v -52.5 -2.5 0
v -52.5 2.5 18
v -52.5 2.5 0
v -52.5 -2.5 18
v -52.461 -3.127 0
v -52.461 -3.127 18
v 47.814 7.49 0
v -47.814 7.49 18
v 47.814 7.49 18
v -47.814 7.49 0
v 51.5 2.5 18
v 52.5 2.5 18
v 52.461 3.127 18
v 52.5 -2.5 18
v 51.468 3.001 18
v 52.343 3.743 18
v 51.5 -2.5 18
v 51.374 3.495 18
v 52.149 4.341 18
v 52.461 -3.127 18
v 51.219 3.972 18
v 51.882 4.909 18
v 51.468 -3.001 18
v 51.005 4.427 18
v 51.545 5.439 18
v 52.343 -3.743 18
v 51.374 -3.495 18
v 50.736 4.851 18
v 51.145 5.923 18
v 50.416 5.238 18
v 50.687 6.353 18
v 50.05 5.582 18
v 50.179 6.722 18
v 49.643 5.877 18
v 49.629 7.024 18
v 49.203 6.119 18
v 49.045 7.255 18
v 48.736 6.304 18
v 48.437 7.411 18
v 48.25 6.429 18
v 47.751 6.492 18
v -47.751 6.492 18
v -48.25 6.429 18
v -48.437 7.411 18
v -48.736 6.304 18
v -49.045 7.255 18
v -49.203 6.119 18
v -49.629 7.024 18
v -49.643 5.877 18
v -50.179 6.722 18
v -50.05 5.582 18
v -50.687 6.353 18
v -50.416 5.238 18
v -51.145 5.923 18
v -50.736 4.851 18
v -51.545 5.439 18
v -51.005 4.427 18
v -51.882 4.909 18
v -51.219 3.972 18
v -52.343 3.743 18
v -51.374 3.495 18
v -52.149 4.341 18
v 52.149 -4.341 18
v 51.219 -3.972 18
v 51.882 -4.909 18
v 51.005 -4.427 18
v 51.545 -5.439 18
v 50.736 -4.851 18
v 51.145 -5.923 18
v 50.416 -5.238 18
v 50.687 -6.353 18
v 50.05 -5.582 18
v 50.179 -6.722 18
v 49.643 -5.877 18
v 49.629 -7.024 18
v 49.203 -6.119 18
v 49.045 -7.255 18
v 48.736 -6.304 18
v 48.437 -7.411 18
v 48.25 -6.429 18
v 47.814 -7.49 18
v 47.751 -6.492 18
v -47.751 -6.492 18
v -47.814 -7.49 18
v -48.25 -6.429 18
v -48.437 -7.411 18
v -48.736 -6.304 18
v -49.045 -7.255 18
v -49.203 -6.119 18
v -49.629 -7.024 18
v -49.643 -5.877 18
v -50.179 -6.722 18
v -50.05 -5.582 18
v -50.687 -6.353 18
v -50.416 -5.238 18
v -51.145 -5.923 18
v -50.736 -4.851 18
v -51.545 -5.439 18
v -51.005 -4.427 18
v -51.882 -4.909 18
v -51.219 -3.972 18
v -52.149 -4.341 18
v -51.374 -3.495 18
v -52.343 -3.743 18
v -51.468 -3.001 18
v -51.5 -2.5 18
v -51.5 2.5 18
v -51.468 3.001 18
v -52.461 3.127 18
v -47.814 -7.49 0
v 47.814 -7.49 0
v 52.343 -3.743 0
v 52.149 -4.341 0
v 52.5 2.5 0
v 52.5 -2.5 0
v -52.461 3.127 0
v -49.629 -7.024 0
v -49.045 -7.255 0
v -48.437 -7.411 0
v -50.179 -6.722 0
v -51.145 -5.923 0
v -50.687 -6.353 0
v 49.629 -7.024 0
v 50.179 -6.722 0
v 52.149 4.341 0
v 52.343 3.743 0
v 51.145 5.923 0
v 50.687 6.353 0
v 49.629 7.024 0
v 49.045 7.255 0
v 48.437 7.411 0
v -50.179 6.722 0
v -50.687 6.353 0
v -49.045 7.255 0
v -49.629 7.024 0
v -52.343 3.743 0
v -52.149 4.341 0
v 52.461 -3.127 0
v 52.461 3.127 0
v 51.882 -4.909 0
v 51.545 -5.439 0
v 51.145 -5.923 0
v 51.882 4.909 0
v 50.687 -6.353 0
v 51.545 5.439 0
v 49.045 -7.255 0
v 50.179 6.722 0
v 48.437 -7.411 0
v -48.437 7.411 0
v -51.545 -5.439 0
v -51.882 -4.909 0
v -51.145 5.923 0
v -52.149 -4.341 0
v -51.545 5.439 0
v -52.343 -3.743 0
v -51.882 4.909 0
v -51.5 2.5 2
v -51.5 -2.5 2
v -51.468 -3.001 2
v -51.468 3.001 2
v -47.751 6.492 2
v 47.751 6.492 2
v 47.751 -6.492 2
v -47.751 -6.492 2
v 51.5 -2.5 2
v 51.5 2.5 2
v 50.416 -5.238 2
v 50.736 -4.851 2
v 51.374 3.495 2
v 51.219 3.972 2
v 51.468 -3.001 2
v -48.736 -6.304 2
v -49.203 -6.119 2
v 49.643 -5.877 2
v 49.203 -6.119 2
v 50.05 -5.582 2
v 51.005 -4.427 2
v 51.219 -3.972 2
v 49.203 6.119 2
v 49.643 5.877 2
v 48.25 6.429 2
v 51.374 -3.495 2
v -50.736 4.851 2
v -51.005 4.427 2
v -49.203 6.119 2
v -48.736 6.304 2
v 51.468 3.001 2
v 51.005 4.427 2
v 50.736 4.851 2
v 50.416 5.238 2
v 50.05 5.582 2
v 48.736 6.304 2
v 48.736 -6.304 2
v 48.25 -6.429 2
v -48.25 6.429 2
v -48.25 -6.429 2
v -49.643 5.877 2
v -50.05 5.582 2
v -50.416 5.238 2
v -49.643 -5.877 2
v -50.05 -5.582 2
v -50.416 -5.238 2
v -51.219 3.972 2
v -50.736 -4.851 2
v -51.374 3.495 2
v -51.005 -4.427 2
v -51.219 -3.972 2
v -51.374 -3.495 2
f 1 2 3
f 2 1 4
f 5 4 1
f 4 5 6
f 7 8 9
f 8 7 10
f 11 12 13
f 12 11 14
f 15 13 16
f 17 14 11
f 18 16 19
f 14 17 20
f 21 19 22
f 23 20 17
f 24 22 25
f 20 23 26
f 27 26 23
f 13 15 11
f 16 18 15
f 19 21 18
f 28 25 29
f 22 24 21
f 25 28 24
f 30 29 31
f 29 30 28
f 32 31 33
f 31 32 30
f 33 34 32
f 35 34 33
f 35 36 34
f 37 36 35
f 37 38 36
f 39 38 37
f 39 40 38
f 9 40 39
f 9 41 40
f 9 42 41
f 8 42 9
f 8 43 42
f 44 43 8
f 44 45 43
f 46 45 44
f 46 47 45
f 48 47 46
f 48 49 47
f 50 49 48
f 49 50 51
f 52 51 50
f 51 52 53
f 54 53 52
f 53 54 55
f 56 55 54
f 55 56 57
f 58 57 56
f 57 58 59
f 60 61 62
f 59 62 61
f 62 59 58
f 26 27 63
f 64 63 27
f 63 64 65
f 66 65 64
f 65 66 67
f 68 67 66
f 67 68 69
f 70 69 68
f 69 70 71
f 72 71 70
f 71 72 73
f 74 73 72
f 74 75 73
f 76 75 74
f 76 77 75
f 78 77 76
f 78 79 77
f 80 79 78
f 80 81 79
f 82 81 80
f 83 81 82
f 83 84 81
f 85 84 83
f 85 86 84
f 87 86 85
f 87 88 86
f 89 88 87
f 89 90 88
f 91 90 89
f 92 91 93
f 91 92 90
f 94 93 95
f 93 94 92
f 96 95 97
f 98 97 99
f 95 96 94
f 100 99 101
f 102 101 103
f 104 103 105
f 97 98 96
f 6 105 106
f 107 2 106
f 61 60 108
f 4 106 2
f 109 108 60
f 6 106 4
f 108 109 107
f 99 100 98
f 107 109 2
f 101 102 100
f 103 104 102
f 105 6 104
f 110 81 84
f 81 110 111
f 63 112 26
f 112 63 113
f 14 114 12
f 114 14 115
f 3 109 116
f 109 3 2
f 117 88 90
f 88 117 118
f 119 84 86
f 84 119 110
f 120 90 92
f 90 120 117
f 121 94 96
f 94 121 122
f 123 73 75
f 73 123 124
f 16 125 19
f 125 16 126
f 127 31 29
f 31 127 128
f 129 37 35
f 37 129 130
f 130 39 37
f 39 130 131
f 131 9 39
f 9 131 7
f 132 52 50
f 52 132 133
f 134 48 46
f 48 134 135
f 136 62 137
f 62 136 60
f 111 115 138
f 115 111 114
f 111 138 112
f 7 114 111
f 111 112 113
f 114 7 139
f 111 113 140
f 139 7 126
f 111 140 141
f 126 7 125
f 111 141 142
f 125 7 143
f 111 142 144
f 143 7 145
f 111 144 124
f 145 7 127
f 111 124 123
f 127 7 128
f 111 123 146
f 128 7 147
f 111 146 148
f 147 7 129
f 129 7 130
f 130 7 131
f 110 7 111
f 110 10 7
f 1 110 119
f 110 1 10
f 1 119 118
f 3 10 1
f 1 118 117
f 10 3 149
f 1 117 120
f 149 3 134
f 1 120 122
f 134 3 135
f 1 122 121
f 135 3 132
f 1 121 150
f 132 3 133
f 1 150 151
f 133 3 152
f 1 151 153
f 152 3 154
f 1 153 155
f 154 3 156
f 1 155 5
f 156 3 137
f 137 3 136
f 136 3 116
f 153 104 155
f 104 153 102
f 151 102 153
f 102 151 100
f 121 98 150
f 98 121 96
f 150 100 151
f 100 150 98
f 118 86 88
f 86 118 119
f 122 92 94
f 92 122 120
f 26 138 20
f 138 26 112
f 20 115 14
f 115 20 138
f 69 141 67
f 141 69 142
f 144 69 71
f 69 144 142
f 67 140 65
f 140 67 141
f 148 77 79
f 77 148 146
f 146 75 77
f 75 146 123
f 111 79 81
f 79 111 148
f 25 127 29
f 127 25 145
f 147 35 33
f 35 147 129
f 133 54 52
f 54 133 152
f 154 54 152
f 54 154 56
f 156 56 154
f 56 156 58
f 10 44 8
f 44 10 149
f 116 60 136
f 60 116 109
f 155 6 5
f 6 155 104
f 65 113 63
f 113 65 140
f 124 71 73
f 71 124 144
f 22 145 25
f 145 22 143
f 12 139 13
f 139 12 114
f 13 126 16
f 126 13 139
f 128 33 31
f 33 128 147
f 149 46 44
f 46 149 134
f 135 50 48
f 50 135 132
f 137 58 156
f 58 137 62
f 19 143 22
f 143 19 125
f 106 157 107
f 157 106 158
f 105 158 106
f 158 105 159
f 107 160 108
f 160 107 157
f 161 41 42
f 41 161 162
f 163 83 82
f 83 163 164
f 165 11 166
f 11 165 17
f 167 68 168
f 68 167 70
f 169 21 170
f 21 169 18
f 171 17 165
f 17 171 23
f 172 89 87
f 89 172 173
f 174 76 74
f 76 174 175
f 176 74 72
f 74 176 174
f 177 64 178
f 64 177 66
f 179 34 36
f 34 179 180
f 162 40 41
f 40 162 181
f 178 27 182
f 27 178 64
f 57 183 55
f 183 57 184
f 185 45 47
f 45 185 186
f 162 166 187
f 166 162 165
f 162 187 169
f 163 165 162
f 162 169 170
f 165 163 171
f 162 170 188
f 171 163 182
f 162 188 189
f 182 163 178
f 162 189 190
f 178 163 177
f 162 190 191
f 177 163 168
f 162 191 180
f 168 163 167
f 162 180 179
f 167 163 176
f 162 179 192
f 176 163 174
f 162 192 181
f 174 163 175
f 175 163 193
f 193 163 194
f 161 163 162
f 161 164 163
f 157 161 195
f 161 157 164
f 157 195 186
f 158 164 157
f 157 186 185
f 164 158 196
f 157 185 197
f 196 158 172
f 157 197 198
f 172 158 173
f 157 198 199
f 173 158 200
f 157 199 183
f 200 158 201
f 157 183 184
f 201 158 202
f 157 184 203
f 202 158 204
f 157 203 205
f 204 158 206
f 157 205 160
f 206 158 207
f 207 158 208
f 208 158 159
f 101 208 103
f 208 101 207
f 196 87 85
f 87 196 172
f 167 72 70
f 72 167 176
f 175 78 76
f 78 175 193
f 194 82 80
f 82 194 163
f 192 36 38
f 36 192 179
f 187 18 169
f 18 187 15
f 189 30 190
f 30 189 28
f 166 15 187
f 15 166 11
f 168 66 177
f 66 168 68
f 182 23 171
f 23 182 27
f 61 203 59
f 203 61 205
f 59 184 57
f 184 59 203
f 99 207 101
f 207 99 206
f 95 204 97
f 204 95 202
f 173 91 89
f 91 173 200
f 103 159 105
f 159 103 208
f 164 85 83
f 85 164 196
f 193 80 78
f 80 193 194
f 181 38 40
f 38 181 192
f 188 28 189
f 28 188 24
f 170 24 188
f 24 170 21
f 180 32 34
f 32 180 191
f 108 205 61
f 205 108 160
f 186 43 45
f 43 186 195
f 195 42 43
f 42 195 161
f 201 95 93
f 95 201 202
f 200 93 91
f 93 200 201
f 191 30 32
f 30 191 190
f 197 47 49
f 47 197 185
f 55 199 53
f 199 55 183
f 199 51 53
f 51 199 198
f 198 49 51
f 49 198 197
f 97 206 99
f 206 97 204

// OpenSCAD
$fn = 50;


difference() {
	union() {
		hull() {
			translate(v = [-47.5000000000, 2.5000000000, 0]) {
				cylinder(h = 18, r = 5);
			}
			translate(v = [47.5000000000, 2.5000000000, 0]) {
				cylinder(h = 18, r = 5);
			}
			translate(v = [-47.5000000000, -2.5000000000, 0]) {
				cylinder(h = 18, r = 5);
			}
			translate(v = [47.5000000000, -2.5000000000, 0]) {
				cylinder(h = 18, r = 5);
			}
		}
	}
	union() {
		translate(v = [0, 0, 2]) {
			hull() {
				translate(v = [-47.5000000000, 2.5000000000, 0]) {
					cylinder(h = 16, r = 4);
				}
				translate(v = [47.5000000000, 2.5000000000, 0]) {
					cylinder(h = 16, r = 4);
				}
				translate(v = [-47.5000000000, -2.5000000000, 0]) {
					cylinder(h = 16, r = 4);
				}
				translate(v = [47.5000000000, -2.5000000000, 0]) {
					cylinder(h = 16, r = 4);
				}
			}
		}
	}
}
